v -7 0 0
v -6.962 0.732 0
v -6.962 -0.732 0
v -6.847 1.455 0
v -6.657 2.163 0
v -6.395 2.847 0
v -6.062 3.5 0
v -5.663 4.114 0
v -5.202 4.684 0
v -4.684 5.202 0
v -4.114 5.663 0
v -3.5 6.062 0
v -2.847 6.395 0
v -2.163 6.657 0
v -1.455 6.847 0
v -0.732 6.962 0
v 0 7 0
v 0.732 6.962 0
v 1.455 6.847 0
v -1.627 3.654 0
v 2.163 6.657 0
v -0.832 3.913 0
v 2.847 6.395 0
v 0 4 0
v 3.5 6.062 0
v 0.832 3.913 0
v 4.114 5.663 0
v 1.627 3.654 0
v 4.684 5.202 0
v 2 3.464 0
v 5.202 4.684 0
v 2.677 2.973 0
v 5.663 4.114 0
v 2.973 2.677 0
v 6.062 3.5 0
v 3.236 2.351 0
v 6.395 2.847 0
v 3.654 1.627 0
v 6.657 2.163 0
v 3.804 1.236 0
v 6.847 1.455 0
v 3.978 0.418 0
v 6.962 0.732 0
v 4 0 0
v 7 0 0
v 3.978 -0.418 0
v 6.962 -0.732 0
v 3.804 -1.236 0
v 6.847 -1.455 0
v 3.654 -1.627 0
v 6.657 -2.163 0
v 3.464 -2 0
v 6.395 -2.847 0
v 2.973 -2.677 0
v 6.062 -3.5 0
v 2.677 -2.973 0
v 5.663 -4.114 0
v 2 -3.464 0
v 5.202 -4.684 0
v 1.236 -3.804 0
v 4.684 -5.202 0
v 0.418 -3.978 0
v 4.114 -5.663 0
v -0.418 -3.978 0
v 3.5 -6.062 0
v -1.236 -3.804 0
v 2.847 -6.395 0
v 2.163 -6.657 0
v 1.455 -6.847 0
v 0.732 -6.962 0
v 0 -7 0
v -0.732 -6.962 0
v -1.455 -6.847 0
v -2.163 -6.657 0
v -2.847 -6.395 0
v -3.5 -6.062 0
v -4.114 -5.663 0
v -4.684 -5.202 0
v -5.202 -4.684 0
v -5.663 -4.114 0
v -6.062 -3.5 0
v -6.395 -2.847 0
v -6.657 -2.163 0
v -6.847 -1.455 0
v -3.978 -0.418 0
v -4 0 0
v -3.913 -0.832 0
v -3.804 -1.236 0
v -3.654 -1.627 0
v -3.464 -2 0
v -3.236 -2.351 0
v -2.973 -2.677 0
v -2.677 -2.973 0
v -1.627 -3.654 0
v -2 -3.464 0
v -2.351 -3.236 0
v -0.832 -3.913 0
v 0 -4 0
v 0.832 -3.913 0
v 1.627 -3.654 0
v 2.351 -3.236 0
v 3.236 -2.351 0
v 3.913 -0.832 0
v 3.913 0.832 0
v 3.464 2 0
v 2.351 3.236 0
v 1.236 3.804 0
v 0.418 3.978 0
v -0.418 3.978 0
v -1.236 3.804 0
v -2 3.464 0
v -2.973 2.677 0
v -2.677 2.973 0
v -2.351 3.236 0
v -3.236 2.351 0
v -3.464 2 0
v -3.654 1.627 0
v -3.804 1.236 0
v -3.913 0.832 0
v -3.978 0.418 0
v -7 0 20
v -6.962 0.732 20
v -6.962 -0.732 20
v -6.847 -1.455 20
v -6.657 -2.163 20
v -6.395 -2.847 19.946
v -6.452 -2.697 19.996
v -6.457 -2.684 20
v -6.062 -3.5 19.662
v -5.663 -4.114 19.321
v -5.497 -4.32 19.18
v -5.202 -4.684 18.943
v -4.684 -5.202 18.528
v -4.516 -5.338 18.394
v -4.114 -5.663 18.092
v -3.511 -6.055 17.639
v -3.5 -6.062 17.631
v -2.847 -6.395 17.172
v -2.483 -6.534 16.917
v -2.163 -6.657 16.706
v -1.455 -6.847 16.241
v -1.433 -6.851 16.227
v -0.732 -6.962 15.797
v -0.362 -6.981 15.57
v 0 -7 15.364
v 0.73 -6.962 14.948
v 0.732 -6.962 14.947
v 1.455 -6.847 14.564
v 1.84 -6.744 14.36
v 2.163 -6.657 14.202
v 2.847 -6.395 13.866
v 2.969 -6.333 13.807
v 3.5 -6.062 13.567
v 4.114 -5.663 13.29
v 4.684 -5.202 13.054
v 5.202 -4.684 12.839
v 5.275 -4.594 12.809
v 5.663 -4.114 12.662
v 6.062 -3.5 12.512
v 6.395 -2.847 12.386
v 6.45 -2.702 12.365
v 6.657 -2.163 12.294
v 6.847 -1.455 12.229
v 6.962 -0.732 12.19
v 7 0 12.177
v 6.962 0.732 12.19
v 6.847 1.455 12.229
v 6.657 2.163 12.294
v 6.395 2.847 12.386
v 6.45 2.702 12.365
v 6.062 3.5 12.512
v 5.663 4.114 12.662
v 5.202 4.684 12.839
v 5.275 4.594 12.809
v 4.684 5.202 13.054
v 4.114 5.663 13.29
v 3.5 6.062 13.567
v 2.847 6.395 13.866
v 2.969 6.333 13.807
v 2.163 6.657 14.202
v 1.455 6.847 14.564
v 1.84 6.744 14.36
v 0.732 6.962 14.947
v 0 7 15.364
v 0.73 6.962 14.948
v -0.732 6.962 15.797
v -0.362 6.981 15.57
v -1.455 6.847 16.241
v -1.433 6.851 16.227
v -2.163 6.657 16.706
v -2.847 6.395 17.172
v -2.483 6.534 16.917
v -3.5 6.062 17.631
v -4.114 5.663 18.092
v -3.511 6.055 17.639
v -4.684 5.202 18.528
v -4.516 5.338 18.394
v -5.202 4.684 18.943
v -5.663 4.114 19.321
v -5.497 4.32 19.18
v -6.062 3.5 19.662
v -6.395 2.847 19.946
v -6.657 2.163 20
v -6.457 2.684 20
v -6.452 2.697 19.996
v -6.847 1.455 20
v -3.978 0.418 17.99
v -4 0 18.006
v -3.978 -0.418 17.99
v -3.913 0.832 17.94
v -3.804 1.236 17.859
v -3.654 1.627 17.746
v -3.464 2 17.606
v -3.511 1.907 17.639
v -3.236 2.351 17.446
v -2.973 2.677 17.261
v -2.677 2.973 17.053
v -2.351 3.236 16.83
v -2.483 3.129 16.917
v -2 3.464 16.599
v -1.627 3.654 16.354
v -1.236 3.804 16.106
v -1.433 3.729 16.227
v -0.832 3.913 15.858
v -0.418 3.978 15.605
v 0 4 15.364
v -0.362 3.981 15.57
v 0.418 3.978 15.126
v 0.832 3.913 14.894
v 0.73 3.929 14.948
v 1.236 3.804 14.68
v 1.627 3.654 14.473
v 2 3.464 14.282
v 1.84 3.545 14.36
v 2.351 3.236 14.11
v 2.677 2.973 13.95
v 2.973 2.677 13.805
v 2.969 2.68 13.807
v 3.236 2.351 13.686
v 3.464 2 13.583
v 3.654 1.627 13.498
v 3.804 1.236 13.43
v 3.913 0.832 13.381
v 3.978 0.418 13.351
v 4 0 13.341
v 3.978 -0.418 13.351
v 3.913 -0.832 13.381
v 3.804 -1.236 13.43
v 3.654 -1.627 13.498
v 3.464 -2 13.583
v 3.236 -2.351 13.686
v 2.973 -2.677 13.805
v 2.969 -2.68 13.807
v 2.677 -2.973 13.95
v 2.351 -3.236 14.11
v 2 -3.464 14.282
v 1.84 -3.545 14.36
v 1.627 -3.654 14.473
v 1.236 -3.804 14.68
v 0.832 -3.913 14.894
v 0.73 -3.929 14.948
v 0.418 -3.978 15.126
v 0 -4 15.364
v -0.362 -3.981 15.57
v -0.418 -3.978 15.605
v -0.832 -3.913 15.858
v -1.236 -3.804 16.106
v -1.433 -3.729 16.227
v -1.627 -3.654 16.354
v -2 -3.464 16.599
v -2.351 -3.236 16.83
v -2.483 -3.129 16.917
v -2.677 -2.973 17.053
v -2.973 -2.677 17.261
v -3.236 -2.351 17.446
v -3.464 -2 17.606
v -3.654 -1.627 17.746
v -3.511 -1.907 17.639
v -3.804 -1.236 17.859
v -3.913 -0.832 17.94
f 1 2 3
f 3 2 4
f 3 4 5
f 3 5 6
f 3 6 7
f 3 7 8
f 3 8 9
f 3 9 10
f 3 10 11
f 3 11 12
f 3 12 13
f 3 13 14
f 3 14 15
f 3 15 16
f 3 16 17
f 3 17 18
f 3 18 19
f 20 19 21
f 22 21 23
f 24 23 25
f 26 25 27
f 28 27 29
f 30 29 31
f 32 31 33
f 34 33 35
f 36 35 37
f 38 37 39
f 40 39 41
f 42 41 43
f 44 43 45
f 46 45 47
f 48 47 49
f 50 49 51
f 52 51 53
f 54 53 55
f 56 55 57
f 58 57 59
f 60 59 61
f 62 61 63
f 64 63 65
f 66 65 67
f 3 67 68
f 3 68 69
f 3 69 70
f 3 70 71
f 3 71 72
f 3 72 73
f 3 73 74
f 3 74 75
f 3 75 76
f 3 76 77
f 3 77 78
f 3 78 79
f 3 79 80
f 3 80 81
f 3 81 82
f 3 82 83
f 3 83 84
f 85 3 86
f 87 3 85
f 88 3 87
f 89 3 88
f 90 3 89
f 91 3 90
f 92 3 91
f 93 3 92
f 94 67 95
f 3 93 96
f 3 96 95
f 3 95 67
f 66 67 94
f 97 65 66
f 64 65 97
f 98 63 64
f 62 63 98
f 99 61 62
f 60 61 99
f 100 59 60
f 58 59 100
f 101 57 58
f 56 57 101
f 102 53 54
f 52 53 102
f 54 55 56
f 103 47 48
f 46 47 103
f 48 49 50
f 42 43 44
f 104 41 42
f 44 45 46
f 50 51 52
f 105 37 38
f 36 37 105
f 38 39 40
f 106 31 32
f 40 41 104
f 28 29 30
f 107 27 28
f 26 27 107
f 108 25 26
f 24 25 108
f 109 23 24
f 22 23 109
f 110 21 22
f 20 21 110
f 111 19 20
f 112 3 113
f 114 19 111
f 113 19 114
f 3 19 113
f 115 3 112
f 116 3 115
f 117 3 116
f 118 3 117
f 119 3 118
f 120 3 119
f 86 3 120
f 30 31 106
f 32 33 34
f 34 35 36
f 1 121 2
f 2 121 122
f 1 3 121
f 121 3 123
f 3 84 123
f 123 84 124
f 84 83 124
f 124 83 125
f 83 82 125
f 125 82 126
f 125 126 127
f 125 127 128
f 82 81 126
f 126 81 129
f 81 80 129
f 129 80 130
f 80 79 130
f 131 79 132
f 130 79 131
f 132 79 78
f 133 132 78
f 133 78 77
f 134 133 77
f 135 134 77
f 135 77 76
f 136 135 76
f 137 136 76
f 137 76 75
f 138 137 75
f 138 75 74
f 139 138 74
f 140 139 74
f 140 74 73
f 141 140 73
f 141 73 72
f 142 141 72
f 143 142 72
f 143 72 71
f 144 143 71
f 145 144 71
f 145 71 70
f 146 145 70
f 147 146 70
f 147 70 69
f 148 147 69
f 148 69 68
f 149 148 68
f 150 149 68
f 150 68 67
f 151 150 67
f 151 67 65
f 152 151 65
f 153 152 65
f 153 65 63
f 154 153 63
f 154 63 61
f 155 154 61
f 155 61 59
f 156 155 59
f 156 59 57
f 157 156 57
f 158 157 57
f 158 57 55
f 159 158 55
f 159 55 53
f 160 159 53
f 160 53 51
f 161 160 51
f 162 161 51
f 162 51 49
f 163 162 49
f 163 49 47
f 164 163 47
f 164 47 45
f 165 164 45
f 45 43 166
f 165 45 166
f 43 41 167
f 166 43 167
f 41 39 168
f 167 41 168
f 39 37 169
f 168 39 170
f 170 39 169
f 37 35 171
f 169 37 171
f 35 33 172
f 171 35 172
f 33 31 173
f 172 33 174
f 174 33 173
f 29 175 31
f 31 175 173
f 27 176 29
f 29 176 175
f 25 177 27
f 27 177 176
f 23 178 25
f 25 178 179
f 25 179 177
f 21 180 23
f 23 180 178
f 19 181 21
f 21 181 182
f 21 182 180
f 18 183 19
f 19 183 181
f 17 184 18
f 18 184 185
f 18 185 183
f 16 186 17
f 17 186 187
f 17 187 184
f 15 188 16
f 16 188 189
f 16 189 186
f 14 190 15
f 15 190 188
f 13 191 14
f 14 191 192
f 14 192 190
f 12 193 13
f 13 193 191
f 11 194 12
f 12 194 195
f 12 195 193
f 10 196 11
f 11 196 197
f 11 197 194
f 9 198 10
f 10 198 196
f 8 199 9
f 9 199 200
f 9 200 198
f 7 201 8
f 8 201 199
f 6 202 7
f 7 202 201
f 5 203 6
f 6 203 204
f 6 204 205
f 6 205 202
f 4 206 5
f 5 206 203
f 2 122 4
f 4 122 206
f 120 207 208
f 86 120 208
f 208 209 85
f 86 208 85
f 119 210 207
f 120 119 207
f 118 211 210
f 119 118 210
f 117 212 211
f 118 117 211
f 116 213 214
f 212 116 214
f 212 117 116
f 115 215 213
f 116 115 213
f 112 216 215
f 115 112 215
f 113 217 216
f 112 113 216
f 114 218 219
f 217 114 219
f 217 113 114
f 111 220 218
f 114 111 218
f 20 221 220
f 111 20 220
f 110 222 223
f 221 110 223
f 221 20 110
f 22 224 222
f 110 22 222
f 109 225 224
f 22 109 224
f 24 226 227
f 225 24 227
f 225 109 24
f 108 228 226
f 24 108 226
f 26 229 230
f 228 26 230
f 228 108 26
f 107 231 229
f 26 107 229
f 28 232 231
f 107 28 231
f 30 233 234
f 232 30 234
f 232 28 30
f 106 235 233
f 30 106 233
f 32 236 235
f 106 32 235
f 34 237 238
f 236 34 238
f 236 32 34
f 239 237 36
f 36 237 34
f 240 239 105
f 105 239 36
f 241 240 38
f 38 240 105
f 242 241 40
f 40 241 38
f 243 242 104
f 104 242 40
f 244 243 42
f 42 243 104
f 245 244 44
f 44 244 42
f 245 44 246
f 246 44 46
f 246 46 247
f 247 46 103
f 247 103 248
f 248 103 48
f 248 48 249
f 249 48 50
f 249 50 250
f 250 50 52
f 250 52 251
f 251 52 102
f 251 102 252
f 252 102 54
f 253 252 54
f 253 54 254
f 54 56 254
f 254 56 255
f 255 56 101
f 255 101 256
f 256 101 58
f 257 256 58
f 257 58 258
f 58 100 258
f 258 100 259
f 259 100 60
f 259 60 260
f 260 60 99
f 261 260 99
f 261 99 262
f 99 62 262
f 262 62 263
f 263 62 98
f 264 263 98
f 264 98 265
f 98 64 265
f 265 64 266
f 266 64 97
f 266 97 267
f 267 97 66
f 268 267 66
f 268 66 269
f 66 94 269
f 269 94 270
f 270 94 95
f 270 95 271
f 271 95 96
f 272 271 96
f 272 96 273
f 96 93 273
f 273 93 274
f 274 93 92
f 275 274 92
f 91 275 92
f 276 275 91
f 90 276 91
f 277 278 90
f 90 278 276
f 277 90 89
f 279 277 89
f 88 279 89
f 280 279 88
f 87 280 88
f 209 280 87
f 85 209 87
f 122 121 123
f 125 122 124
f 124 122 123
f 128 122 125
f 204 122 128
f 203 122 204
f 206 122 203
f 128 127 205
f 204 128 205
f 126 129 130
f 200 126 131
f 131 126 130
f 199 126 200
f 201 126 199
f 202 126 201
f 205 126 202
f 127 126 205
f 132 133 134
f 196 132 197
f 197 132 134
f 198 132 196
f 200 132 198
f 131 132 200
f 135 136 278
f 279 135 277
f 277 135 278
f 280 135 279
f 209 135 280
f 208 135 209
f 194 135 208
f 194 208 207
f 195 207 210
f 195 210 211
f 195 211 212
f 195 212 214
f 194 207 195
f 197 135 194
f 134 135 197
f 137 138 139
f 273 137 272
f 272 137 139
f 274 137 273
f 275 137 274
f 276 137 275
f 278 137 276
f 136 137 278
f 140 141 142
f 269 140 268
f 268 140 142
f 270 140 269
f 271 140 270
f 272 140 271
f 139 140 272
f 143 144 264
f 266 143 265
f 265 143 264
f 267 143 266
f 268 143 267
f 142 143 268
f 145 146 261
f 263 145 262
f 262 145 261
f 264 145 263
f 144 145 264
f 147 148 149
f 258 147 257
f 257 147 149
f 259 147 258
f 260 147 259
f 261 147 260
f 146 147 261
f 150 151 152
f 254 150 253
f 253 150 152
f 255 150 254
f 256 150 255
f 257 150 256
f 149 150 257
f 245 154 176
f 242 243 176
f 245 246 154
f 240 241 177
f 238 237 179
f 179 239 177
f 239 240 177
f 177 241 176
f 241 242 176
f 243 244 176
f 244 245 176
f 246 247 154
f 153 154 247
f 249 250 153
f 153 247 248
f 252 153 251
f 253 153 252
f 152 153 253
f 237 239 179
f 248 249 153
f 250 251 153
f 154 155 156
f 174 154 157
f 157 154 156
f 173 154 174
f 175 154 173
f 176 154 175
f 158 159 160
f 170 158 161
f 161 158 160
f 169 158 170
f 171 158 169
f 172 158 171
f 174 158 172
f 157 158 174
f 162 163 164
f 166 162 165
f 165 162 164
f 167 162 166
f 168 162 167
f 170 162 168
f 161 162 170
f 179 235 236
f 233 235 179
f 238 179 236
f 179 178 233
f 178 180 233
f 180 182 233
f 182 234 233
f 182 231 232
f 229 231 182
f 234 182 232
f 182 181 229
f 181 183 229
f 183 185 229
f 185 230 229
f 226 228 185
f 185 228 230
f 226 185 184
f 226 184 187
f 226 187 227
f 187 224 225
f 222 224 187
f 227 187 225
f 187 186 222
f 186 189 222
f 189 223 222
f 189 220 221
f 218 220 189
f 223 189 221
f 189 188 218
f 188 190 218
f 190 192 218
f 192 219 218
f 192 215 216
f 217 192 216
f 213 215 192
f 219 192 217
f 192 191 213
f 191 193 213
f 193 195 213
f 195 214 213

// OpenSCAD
//Schlauchstopper

difference(){
cylinder(h=20, r=7, $fn=60);
	translate([0,0,-0.1])
	cylinder(h=30, r=4, $fn=60);

    translate([20,30,50]) rotate([90,0,0]) cylinder(r=40, h=50, $fn=200);
}
